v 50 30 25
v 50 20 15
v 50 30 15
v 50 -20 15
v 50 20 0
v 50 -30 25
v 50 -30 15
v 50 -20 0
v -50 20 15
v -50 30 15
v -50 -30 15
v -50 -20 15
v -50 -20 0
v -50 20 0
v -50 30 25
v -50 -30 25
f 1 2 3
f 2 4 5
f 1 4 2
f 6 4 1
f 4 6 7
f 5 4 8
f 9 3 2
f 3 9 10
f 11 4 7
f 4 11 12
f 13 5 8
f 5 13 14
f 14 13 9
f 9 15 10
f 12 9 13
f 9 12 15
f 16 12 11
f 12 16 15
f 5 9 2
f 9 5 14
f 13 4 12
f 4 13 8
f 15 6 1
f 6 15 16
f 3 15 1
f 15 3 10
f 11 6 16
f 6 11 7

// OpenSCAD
// Tank dimensions
tank_length = 100;
tank_width = 60;
tank_height = 30;
track_width = 10;
track_height = 20;
track_length = tank_length * 0.9;




module track( track_length, track_width, track_height ){
     cube( [ track_length, track_width, track_height ], true );
     translate( [ track_length / 2, 0, 0 ] )
        wheel( track_width,track_height );
     translate( [ -track_length / 2, 0, 0 ] )
        wheel(track_width,track_height);
}

module wheel( track_width,track_height ){
         translate( [0, track_width/2, 0 ] )
         rotate( [ 90, 0, 0 ] ){
         cylinder( h = track_width, r = track_height / 2 );
    } 
}

module fulltrack( w, h, l ){

    difference(){
    track( l,w,tank_height );
    track( l,w + 1,tank_height * 0.8 );
    }
    
    wheel(w,h * 1.15);
    translate( [l/3,0, 0 ] )
    wheel(w,h * 1.15);
    translate( [-track_length/3,0, 0 ] )
    wheel(w,h * 1.15);
} 

module tracks(){


    translate( [ 0, -tank_width / 2, 0 ] )
        fulltrack( track_height, track_height, track_length);
    
    
    translate( [ 0, tank_width / 2, 0 ] )
        fulltrack( track_height, track_height, track_length);
    
}

module hull(){
    translate([0,0,tank_height/4]){
    cube([ tank_length,tank_width - track_width*2,tank_height/2], center = true);
    }
    translate([0,0,tank_height/1.5])
        cube([ tank_length,tank_width,tank_height/3], center = true);
}




//tracks();
hull();

//track_right();
